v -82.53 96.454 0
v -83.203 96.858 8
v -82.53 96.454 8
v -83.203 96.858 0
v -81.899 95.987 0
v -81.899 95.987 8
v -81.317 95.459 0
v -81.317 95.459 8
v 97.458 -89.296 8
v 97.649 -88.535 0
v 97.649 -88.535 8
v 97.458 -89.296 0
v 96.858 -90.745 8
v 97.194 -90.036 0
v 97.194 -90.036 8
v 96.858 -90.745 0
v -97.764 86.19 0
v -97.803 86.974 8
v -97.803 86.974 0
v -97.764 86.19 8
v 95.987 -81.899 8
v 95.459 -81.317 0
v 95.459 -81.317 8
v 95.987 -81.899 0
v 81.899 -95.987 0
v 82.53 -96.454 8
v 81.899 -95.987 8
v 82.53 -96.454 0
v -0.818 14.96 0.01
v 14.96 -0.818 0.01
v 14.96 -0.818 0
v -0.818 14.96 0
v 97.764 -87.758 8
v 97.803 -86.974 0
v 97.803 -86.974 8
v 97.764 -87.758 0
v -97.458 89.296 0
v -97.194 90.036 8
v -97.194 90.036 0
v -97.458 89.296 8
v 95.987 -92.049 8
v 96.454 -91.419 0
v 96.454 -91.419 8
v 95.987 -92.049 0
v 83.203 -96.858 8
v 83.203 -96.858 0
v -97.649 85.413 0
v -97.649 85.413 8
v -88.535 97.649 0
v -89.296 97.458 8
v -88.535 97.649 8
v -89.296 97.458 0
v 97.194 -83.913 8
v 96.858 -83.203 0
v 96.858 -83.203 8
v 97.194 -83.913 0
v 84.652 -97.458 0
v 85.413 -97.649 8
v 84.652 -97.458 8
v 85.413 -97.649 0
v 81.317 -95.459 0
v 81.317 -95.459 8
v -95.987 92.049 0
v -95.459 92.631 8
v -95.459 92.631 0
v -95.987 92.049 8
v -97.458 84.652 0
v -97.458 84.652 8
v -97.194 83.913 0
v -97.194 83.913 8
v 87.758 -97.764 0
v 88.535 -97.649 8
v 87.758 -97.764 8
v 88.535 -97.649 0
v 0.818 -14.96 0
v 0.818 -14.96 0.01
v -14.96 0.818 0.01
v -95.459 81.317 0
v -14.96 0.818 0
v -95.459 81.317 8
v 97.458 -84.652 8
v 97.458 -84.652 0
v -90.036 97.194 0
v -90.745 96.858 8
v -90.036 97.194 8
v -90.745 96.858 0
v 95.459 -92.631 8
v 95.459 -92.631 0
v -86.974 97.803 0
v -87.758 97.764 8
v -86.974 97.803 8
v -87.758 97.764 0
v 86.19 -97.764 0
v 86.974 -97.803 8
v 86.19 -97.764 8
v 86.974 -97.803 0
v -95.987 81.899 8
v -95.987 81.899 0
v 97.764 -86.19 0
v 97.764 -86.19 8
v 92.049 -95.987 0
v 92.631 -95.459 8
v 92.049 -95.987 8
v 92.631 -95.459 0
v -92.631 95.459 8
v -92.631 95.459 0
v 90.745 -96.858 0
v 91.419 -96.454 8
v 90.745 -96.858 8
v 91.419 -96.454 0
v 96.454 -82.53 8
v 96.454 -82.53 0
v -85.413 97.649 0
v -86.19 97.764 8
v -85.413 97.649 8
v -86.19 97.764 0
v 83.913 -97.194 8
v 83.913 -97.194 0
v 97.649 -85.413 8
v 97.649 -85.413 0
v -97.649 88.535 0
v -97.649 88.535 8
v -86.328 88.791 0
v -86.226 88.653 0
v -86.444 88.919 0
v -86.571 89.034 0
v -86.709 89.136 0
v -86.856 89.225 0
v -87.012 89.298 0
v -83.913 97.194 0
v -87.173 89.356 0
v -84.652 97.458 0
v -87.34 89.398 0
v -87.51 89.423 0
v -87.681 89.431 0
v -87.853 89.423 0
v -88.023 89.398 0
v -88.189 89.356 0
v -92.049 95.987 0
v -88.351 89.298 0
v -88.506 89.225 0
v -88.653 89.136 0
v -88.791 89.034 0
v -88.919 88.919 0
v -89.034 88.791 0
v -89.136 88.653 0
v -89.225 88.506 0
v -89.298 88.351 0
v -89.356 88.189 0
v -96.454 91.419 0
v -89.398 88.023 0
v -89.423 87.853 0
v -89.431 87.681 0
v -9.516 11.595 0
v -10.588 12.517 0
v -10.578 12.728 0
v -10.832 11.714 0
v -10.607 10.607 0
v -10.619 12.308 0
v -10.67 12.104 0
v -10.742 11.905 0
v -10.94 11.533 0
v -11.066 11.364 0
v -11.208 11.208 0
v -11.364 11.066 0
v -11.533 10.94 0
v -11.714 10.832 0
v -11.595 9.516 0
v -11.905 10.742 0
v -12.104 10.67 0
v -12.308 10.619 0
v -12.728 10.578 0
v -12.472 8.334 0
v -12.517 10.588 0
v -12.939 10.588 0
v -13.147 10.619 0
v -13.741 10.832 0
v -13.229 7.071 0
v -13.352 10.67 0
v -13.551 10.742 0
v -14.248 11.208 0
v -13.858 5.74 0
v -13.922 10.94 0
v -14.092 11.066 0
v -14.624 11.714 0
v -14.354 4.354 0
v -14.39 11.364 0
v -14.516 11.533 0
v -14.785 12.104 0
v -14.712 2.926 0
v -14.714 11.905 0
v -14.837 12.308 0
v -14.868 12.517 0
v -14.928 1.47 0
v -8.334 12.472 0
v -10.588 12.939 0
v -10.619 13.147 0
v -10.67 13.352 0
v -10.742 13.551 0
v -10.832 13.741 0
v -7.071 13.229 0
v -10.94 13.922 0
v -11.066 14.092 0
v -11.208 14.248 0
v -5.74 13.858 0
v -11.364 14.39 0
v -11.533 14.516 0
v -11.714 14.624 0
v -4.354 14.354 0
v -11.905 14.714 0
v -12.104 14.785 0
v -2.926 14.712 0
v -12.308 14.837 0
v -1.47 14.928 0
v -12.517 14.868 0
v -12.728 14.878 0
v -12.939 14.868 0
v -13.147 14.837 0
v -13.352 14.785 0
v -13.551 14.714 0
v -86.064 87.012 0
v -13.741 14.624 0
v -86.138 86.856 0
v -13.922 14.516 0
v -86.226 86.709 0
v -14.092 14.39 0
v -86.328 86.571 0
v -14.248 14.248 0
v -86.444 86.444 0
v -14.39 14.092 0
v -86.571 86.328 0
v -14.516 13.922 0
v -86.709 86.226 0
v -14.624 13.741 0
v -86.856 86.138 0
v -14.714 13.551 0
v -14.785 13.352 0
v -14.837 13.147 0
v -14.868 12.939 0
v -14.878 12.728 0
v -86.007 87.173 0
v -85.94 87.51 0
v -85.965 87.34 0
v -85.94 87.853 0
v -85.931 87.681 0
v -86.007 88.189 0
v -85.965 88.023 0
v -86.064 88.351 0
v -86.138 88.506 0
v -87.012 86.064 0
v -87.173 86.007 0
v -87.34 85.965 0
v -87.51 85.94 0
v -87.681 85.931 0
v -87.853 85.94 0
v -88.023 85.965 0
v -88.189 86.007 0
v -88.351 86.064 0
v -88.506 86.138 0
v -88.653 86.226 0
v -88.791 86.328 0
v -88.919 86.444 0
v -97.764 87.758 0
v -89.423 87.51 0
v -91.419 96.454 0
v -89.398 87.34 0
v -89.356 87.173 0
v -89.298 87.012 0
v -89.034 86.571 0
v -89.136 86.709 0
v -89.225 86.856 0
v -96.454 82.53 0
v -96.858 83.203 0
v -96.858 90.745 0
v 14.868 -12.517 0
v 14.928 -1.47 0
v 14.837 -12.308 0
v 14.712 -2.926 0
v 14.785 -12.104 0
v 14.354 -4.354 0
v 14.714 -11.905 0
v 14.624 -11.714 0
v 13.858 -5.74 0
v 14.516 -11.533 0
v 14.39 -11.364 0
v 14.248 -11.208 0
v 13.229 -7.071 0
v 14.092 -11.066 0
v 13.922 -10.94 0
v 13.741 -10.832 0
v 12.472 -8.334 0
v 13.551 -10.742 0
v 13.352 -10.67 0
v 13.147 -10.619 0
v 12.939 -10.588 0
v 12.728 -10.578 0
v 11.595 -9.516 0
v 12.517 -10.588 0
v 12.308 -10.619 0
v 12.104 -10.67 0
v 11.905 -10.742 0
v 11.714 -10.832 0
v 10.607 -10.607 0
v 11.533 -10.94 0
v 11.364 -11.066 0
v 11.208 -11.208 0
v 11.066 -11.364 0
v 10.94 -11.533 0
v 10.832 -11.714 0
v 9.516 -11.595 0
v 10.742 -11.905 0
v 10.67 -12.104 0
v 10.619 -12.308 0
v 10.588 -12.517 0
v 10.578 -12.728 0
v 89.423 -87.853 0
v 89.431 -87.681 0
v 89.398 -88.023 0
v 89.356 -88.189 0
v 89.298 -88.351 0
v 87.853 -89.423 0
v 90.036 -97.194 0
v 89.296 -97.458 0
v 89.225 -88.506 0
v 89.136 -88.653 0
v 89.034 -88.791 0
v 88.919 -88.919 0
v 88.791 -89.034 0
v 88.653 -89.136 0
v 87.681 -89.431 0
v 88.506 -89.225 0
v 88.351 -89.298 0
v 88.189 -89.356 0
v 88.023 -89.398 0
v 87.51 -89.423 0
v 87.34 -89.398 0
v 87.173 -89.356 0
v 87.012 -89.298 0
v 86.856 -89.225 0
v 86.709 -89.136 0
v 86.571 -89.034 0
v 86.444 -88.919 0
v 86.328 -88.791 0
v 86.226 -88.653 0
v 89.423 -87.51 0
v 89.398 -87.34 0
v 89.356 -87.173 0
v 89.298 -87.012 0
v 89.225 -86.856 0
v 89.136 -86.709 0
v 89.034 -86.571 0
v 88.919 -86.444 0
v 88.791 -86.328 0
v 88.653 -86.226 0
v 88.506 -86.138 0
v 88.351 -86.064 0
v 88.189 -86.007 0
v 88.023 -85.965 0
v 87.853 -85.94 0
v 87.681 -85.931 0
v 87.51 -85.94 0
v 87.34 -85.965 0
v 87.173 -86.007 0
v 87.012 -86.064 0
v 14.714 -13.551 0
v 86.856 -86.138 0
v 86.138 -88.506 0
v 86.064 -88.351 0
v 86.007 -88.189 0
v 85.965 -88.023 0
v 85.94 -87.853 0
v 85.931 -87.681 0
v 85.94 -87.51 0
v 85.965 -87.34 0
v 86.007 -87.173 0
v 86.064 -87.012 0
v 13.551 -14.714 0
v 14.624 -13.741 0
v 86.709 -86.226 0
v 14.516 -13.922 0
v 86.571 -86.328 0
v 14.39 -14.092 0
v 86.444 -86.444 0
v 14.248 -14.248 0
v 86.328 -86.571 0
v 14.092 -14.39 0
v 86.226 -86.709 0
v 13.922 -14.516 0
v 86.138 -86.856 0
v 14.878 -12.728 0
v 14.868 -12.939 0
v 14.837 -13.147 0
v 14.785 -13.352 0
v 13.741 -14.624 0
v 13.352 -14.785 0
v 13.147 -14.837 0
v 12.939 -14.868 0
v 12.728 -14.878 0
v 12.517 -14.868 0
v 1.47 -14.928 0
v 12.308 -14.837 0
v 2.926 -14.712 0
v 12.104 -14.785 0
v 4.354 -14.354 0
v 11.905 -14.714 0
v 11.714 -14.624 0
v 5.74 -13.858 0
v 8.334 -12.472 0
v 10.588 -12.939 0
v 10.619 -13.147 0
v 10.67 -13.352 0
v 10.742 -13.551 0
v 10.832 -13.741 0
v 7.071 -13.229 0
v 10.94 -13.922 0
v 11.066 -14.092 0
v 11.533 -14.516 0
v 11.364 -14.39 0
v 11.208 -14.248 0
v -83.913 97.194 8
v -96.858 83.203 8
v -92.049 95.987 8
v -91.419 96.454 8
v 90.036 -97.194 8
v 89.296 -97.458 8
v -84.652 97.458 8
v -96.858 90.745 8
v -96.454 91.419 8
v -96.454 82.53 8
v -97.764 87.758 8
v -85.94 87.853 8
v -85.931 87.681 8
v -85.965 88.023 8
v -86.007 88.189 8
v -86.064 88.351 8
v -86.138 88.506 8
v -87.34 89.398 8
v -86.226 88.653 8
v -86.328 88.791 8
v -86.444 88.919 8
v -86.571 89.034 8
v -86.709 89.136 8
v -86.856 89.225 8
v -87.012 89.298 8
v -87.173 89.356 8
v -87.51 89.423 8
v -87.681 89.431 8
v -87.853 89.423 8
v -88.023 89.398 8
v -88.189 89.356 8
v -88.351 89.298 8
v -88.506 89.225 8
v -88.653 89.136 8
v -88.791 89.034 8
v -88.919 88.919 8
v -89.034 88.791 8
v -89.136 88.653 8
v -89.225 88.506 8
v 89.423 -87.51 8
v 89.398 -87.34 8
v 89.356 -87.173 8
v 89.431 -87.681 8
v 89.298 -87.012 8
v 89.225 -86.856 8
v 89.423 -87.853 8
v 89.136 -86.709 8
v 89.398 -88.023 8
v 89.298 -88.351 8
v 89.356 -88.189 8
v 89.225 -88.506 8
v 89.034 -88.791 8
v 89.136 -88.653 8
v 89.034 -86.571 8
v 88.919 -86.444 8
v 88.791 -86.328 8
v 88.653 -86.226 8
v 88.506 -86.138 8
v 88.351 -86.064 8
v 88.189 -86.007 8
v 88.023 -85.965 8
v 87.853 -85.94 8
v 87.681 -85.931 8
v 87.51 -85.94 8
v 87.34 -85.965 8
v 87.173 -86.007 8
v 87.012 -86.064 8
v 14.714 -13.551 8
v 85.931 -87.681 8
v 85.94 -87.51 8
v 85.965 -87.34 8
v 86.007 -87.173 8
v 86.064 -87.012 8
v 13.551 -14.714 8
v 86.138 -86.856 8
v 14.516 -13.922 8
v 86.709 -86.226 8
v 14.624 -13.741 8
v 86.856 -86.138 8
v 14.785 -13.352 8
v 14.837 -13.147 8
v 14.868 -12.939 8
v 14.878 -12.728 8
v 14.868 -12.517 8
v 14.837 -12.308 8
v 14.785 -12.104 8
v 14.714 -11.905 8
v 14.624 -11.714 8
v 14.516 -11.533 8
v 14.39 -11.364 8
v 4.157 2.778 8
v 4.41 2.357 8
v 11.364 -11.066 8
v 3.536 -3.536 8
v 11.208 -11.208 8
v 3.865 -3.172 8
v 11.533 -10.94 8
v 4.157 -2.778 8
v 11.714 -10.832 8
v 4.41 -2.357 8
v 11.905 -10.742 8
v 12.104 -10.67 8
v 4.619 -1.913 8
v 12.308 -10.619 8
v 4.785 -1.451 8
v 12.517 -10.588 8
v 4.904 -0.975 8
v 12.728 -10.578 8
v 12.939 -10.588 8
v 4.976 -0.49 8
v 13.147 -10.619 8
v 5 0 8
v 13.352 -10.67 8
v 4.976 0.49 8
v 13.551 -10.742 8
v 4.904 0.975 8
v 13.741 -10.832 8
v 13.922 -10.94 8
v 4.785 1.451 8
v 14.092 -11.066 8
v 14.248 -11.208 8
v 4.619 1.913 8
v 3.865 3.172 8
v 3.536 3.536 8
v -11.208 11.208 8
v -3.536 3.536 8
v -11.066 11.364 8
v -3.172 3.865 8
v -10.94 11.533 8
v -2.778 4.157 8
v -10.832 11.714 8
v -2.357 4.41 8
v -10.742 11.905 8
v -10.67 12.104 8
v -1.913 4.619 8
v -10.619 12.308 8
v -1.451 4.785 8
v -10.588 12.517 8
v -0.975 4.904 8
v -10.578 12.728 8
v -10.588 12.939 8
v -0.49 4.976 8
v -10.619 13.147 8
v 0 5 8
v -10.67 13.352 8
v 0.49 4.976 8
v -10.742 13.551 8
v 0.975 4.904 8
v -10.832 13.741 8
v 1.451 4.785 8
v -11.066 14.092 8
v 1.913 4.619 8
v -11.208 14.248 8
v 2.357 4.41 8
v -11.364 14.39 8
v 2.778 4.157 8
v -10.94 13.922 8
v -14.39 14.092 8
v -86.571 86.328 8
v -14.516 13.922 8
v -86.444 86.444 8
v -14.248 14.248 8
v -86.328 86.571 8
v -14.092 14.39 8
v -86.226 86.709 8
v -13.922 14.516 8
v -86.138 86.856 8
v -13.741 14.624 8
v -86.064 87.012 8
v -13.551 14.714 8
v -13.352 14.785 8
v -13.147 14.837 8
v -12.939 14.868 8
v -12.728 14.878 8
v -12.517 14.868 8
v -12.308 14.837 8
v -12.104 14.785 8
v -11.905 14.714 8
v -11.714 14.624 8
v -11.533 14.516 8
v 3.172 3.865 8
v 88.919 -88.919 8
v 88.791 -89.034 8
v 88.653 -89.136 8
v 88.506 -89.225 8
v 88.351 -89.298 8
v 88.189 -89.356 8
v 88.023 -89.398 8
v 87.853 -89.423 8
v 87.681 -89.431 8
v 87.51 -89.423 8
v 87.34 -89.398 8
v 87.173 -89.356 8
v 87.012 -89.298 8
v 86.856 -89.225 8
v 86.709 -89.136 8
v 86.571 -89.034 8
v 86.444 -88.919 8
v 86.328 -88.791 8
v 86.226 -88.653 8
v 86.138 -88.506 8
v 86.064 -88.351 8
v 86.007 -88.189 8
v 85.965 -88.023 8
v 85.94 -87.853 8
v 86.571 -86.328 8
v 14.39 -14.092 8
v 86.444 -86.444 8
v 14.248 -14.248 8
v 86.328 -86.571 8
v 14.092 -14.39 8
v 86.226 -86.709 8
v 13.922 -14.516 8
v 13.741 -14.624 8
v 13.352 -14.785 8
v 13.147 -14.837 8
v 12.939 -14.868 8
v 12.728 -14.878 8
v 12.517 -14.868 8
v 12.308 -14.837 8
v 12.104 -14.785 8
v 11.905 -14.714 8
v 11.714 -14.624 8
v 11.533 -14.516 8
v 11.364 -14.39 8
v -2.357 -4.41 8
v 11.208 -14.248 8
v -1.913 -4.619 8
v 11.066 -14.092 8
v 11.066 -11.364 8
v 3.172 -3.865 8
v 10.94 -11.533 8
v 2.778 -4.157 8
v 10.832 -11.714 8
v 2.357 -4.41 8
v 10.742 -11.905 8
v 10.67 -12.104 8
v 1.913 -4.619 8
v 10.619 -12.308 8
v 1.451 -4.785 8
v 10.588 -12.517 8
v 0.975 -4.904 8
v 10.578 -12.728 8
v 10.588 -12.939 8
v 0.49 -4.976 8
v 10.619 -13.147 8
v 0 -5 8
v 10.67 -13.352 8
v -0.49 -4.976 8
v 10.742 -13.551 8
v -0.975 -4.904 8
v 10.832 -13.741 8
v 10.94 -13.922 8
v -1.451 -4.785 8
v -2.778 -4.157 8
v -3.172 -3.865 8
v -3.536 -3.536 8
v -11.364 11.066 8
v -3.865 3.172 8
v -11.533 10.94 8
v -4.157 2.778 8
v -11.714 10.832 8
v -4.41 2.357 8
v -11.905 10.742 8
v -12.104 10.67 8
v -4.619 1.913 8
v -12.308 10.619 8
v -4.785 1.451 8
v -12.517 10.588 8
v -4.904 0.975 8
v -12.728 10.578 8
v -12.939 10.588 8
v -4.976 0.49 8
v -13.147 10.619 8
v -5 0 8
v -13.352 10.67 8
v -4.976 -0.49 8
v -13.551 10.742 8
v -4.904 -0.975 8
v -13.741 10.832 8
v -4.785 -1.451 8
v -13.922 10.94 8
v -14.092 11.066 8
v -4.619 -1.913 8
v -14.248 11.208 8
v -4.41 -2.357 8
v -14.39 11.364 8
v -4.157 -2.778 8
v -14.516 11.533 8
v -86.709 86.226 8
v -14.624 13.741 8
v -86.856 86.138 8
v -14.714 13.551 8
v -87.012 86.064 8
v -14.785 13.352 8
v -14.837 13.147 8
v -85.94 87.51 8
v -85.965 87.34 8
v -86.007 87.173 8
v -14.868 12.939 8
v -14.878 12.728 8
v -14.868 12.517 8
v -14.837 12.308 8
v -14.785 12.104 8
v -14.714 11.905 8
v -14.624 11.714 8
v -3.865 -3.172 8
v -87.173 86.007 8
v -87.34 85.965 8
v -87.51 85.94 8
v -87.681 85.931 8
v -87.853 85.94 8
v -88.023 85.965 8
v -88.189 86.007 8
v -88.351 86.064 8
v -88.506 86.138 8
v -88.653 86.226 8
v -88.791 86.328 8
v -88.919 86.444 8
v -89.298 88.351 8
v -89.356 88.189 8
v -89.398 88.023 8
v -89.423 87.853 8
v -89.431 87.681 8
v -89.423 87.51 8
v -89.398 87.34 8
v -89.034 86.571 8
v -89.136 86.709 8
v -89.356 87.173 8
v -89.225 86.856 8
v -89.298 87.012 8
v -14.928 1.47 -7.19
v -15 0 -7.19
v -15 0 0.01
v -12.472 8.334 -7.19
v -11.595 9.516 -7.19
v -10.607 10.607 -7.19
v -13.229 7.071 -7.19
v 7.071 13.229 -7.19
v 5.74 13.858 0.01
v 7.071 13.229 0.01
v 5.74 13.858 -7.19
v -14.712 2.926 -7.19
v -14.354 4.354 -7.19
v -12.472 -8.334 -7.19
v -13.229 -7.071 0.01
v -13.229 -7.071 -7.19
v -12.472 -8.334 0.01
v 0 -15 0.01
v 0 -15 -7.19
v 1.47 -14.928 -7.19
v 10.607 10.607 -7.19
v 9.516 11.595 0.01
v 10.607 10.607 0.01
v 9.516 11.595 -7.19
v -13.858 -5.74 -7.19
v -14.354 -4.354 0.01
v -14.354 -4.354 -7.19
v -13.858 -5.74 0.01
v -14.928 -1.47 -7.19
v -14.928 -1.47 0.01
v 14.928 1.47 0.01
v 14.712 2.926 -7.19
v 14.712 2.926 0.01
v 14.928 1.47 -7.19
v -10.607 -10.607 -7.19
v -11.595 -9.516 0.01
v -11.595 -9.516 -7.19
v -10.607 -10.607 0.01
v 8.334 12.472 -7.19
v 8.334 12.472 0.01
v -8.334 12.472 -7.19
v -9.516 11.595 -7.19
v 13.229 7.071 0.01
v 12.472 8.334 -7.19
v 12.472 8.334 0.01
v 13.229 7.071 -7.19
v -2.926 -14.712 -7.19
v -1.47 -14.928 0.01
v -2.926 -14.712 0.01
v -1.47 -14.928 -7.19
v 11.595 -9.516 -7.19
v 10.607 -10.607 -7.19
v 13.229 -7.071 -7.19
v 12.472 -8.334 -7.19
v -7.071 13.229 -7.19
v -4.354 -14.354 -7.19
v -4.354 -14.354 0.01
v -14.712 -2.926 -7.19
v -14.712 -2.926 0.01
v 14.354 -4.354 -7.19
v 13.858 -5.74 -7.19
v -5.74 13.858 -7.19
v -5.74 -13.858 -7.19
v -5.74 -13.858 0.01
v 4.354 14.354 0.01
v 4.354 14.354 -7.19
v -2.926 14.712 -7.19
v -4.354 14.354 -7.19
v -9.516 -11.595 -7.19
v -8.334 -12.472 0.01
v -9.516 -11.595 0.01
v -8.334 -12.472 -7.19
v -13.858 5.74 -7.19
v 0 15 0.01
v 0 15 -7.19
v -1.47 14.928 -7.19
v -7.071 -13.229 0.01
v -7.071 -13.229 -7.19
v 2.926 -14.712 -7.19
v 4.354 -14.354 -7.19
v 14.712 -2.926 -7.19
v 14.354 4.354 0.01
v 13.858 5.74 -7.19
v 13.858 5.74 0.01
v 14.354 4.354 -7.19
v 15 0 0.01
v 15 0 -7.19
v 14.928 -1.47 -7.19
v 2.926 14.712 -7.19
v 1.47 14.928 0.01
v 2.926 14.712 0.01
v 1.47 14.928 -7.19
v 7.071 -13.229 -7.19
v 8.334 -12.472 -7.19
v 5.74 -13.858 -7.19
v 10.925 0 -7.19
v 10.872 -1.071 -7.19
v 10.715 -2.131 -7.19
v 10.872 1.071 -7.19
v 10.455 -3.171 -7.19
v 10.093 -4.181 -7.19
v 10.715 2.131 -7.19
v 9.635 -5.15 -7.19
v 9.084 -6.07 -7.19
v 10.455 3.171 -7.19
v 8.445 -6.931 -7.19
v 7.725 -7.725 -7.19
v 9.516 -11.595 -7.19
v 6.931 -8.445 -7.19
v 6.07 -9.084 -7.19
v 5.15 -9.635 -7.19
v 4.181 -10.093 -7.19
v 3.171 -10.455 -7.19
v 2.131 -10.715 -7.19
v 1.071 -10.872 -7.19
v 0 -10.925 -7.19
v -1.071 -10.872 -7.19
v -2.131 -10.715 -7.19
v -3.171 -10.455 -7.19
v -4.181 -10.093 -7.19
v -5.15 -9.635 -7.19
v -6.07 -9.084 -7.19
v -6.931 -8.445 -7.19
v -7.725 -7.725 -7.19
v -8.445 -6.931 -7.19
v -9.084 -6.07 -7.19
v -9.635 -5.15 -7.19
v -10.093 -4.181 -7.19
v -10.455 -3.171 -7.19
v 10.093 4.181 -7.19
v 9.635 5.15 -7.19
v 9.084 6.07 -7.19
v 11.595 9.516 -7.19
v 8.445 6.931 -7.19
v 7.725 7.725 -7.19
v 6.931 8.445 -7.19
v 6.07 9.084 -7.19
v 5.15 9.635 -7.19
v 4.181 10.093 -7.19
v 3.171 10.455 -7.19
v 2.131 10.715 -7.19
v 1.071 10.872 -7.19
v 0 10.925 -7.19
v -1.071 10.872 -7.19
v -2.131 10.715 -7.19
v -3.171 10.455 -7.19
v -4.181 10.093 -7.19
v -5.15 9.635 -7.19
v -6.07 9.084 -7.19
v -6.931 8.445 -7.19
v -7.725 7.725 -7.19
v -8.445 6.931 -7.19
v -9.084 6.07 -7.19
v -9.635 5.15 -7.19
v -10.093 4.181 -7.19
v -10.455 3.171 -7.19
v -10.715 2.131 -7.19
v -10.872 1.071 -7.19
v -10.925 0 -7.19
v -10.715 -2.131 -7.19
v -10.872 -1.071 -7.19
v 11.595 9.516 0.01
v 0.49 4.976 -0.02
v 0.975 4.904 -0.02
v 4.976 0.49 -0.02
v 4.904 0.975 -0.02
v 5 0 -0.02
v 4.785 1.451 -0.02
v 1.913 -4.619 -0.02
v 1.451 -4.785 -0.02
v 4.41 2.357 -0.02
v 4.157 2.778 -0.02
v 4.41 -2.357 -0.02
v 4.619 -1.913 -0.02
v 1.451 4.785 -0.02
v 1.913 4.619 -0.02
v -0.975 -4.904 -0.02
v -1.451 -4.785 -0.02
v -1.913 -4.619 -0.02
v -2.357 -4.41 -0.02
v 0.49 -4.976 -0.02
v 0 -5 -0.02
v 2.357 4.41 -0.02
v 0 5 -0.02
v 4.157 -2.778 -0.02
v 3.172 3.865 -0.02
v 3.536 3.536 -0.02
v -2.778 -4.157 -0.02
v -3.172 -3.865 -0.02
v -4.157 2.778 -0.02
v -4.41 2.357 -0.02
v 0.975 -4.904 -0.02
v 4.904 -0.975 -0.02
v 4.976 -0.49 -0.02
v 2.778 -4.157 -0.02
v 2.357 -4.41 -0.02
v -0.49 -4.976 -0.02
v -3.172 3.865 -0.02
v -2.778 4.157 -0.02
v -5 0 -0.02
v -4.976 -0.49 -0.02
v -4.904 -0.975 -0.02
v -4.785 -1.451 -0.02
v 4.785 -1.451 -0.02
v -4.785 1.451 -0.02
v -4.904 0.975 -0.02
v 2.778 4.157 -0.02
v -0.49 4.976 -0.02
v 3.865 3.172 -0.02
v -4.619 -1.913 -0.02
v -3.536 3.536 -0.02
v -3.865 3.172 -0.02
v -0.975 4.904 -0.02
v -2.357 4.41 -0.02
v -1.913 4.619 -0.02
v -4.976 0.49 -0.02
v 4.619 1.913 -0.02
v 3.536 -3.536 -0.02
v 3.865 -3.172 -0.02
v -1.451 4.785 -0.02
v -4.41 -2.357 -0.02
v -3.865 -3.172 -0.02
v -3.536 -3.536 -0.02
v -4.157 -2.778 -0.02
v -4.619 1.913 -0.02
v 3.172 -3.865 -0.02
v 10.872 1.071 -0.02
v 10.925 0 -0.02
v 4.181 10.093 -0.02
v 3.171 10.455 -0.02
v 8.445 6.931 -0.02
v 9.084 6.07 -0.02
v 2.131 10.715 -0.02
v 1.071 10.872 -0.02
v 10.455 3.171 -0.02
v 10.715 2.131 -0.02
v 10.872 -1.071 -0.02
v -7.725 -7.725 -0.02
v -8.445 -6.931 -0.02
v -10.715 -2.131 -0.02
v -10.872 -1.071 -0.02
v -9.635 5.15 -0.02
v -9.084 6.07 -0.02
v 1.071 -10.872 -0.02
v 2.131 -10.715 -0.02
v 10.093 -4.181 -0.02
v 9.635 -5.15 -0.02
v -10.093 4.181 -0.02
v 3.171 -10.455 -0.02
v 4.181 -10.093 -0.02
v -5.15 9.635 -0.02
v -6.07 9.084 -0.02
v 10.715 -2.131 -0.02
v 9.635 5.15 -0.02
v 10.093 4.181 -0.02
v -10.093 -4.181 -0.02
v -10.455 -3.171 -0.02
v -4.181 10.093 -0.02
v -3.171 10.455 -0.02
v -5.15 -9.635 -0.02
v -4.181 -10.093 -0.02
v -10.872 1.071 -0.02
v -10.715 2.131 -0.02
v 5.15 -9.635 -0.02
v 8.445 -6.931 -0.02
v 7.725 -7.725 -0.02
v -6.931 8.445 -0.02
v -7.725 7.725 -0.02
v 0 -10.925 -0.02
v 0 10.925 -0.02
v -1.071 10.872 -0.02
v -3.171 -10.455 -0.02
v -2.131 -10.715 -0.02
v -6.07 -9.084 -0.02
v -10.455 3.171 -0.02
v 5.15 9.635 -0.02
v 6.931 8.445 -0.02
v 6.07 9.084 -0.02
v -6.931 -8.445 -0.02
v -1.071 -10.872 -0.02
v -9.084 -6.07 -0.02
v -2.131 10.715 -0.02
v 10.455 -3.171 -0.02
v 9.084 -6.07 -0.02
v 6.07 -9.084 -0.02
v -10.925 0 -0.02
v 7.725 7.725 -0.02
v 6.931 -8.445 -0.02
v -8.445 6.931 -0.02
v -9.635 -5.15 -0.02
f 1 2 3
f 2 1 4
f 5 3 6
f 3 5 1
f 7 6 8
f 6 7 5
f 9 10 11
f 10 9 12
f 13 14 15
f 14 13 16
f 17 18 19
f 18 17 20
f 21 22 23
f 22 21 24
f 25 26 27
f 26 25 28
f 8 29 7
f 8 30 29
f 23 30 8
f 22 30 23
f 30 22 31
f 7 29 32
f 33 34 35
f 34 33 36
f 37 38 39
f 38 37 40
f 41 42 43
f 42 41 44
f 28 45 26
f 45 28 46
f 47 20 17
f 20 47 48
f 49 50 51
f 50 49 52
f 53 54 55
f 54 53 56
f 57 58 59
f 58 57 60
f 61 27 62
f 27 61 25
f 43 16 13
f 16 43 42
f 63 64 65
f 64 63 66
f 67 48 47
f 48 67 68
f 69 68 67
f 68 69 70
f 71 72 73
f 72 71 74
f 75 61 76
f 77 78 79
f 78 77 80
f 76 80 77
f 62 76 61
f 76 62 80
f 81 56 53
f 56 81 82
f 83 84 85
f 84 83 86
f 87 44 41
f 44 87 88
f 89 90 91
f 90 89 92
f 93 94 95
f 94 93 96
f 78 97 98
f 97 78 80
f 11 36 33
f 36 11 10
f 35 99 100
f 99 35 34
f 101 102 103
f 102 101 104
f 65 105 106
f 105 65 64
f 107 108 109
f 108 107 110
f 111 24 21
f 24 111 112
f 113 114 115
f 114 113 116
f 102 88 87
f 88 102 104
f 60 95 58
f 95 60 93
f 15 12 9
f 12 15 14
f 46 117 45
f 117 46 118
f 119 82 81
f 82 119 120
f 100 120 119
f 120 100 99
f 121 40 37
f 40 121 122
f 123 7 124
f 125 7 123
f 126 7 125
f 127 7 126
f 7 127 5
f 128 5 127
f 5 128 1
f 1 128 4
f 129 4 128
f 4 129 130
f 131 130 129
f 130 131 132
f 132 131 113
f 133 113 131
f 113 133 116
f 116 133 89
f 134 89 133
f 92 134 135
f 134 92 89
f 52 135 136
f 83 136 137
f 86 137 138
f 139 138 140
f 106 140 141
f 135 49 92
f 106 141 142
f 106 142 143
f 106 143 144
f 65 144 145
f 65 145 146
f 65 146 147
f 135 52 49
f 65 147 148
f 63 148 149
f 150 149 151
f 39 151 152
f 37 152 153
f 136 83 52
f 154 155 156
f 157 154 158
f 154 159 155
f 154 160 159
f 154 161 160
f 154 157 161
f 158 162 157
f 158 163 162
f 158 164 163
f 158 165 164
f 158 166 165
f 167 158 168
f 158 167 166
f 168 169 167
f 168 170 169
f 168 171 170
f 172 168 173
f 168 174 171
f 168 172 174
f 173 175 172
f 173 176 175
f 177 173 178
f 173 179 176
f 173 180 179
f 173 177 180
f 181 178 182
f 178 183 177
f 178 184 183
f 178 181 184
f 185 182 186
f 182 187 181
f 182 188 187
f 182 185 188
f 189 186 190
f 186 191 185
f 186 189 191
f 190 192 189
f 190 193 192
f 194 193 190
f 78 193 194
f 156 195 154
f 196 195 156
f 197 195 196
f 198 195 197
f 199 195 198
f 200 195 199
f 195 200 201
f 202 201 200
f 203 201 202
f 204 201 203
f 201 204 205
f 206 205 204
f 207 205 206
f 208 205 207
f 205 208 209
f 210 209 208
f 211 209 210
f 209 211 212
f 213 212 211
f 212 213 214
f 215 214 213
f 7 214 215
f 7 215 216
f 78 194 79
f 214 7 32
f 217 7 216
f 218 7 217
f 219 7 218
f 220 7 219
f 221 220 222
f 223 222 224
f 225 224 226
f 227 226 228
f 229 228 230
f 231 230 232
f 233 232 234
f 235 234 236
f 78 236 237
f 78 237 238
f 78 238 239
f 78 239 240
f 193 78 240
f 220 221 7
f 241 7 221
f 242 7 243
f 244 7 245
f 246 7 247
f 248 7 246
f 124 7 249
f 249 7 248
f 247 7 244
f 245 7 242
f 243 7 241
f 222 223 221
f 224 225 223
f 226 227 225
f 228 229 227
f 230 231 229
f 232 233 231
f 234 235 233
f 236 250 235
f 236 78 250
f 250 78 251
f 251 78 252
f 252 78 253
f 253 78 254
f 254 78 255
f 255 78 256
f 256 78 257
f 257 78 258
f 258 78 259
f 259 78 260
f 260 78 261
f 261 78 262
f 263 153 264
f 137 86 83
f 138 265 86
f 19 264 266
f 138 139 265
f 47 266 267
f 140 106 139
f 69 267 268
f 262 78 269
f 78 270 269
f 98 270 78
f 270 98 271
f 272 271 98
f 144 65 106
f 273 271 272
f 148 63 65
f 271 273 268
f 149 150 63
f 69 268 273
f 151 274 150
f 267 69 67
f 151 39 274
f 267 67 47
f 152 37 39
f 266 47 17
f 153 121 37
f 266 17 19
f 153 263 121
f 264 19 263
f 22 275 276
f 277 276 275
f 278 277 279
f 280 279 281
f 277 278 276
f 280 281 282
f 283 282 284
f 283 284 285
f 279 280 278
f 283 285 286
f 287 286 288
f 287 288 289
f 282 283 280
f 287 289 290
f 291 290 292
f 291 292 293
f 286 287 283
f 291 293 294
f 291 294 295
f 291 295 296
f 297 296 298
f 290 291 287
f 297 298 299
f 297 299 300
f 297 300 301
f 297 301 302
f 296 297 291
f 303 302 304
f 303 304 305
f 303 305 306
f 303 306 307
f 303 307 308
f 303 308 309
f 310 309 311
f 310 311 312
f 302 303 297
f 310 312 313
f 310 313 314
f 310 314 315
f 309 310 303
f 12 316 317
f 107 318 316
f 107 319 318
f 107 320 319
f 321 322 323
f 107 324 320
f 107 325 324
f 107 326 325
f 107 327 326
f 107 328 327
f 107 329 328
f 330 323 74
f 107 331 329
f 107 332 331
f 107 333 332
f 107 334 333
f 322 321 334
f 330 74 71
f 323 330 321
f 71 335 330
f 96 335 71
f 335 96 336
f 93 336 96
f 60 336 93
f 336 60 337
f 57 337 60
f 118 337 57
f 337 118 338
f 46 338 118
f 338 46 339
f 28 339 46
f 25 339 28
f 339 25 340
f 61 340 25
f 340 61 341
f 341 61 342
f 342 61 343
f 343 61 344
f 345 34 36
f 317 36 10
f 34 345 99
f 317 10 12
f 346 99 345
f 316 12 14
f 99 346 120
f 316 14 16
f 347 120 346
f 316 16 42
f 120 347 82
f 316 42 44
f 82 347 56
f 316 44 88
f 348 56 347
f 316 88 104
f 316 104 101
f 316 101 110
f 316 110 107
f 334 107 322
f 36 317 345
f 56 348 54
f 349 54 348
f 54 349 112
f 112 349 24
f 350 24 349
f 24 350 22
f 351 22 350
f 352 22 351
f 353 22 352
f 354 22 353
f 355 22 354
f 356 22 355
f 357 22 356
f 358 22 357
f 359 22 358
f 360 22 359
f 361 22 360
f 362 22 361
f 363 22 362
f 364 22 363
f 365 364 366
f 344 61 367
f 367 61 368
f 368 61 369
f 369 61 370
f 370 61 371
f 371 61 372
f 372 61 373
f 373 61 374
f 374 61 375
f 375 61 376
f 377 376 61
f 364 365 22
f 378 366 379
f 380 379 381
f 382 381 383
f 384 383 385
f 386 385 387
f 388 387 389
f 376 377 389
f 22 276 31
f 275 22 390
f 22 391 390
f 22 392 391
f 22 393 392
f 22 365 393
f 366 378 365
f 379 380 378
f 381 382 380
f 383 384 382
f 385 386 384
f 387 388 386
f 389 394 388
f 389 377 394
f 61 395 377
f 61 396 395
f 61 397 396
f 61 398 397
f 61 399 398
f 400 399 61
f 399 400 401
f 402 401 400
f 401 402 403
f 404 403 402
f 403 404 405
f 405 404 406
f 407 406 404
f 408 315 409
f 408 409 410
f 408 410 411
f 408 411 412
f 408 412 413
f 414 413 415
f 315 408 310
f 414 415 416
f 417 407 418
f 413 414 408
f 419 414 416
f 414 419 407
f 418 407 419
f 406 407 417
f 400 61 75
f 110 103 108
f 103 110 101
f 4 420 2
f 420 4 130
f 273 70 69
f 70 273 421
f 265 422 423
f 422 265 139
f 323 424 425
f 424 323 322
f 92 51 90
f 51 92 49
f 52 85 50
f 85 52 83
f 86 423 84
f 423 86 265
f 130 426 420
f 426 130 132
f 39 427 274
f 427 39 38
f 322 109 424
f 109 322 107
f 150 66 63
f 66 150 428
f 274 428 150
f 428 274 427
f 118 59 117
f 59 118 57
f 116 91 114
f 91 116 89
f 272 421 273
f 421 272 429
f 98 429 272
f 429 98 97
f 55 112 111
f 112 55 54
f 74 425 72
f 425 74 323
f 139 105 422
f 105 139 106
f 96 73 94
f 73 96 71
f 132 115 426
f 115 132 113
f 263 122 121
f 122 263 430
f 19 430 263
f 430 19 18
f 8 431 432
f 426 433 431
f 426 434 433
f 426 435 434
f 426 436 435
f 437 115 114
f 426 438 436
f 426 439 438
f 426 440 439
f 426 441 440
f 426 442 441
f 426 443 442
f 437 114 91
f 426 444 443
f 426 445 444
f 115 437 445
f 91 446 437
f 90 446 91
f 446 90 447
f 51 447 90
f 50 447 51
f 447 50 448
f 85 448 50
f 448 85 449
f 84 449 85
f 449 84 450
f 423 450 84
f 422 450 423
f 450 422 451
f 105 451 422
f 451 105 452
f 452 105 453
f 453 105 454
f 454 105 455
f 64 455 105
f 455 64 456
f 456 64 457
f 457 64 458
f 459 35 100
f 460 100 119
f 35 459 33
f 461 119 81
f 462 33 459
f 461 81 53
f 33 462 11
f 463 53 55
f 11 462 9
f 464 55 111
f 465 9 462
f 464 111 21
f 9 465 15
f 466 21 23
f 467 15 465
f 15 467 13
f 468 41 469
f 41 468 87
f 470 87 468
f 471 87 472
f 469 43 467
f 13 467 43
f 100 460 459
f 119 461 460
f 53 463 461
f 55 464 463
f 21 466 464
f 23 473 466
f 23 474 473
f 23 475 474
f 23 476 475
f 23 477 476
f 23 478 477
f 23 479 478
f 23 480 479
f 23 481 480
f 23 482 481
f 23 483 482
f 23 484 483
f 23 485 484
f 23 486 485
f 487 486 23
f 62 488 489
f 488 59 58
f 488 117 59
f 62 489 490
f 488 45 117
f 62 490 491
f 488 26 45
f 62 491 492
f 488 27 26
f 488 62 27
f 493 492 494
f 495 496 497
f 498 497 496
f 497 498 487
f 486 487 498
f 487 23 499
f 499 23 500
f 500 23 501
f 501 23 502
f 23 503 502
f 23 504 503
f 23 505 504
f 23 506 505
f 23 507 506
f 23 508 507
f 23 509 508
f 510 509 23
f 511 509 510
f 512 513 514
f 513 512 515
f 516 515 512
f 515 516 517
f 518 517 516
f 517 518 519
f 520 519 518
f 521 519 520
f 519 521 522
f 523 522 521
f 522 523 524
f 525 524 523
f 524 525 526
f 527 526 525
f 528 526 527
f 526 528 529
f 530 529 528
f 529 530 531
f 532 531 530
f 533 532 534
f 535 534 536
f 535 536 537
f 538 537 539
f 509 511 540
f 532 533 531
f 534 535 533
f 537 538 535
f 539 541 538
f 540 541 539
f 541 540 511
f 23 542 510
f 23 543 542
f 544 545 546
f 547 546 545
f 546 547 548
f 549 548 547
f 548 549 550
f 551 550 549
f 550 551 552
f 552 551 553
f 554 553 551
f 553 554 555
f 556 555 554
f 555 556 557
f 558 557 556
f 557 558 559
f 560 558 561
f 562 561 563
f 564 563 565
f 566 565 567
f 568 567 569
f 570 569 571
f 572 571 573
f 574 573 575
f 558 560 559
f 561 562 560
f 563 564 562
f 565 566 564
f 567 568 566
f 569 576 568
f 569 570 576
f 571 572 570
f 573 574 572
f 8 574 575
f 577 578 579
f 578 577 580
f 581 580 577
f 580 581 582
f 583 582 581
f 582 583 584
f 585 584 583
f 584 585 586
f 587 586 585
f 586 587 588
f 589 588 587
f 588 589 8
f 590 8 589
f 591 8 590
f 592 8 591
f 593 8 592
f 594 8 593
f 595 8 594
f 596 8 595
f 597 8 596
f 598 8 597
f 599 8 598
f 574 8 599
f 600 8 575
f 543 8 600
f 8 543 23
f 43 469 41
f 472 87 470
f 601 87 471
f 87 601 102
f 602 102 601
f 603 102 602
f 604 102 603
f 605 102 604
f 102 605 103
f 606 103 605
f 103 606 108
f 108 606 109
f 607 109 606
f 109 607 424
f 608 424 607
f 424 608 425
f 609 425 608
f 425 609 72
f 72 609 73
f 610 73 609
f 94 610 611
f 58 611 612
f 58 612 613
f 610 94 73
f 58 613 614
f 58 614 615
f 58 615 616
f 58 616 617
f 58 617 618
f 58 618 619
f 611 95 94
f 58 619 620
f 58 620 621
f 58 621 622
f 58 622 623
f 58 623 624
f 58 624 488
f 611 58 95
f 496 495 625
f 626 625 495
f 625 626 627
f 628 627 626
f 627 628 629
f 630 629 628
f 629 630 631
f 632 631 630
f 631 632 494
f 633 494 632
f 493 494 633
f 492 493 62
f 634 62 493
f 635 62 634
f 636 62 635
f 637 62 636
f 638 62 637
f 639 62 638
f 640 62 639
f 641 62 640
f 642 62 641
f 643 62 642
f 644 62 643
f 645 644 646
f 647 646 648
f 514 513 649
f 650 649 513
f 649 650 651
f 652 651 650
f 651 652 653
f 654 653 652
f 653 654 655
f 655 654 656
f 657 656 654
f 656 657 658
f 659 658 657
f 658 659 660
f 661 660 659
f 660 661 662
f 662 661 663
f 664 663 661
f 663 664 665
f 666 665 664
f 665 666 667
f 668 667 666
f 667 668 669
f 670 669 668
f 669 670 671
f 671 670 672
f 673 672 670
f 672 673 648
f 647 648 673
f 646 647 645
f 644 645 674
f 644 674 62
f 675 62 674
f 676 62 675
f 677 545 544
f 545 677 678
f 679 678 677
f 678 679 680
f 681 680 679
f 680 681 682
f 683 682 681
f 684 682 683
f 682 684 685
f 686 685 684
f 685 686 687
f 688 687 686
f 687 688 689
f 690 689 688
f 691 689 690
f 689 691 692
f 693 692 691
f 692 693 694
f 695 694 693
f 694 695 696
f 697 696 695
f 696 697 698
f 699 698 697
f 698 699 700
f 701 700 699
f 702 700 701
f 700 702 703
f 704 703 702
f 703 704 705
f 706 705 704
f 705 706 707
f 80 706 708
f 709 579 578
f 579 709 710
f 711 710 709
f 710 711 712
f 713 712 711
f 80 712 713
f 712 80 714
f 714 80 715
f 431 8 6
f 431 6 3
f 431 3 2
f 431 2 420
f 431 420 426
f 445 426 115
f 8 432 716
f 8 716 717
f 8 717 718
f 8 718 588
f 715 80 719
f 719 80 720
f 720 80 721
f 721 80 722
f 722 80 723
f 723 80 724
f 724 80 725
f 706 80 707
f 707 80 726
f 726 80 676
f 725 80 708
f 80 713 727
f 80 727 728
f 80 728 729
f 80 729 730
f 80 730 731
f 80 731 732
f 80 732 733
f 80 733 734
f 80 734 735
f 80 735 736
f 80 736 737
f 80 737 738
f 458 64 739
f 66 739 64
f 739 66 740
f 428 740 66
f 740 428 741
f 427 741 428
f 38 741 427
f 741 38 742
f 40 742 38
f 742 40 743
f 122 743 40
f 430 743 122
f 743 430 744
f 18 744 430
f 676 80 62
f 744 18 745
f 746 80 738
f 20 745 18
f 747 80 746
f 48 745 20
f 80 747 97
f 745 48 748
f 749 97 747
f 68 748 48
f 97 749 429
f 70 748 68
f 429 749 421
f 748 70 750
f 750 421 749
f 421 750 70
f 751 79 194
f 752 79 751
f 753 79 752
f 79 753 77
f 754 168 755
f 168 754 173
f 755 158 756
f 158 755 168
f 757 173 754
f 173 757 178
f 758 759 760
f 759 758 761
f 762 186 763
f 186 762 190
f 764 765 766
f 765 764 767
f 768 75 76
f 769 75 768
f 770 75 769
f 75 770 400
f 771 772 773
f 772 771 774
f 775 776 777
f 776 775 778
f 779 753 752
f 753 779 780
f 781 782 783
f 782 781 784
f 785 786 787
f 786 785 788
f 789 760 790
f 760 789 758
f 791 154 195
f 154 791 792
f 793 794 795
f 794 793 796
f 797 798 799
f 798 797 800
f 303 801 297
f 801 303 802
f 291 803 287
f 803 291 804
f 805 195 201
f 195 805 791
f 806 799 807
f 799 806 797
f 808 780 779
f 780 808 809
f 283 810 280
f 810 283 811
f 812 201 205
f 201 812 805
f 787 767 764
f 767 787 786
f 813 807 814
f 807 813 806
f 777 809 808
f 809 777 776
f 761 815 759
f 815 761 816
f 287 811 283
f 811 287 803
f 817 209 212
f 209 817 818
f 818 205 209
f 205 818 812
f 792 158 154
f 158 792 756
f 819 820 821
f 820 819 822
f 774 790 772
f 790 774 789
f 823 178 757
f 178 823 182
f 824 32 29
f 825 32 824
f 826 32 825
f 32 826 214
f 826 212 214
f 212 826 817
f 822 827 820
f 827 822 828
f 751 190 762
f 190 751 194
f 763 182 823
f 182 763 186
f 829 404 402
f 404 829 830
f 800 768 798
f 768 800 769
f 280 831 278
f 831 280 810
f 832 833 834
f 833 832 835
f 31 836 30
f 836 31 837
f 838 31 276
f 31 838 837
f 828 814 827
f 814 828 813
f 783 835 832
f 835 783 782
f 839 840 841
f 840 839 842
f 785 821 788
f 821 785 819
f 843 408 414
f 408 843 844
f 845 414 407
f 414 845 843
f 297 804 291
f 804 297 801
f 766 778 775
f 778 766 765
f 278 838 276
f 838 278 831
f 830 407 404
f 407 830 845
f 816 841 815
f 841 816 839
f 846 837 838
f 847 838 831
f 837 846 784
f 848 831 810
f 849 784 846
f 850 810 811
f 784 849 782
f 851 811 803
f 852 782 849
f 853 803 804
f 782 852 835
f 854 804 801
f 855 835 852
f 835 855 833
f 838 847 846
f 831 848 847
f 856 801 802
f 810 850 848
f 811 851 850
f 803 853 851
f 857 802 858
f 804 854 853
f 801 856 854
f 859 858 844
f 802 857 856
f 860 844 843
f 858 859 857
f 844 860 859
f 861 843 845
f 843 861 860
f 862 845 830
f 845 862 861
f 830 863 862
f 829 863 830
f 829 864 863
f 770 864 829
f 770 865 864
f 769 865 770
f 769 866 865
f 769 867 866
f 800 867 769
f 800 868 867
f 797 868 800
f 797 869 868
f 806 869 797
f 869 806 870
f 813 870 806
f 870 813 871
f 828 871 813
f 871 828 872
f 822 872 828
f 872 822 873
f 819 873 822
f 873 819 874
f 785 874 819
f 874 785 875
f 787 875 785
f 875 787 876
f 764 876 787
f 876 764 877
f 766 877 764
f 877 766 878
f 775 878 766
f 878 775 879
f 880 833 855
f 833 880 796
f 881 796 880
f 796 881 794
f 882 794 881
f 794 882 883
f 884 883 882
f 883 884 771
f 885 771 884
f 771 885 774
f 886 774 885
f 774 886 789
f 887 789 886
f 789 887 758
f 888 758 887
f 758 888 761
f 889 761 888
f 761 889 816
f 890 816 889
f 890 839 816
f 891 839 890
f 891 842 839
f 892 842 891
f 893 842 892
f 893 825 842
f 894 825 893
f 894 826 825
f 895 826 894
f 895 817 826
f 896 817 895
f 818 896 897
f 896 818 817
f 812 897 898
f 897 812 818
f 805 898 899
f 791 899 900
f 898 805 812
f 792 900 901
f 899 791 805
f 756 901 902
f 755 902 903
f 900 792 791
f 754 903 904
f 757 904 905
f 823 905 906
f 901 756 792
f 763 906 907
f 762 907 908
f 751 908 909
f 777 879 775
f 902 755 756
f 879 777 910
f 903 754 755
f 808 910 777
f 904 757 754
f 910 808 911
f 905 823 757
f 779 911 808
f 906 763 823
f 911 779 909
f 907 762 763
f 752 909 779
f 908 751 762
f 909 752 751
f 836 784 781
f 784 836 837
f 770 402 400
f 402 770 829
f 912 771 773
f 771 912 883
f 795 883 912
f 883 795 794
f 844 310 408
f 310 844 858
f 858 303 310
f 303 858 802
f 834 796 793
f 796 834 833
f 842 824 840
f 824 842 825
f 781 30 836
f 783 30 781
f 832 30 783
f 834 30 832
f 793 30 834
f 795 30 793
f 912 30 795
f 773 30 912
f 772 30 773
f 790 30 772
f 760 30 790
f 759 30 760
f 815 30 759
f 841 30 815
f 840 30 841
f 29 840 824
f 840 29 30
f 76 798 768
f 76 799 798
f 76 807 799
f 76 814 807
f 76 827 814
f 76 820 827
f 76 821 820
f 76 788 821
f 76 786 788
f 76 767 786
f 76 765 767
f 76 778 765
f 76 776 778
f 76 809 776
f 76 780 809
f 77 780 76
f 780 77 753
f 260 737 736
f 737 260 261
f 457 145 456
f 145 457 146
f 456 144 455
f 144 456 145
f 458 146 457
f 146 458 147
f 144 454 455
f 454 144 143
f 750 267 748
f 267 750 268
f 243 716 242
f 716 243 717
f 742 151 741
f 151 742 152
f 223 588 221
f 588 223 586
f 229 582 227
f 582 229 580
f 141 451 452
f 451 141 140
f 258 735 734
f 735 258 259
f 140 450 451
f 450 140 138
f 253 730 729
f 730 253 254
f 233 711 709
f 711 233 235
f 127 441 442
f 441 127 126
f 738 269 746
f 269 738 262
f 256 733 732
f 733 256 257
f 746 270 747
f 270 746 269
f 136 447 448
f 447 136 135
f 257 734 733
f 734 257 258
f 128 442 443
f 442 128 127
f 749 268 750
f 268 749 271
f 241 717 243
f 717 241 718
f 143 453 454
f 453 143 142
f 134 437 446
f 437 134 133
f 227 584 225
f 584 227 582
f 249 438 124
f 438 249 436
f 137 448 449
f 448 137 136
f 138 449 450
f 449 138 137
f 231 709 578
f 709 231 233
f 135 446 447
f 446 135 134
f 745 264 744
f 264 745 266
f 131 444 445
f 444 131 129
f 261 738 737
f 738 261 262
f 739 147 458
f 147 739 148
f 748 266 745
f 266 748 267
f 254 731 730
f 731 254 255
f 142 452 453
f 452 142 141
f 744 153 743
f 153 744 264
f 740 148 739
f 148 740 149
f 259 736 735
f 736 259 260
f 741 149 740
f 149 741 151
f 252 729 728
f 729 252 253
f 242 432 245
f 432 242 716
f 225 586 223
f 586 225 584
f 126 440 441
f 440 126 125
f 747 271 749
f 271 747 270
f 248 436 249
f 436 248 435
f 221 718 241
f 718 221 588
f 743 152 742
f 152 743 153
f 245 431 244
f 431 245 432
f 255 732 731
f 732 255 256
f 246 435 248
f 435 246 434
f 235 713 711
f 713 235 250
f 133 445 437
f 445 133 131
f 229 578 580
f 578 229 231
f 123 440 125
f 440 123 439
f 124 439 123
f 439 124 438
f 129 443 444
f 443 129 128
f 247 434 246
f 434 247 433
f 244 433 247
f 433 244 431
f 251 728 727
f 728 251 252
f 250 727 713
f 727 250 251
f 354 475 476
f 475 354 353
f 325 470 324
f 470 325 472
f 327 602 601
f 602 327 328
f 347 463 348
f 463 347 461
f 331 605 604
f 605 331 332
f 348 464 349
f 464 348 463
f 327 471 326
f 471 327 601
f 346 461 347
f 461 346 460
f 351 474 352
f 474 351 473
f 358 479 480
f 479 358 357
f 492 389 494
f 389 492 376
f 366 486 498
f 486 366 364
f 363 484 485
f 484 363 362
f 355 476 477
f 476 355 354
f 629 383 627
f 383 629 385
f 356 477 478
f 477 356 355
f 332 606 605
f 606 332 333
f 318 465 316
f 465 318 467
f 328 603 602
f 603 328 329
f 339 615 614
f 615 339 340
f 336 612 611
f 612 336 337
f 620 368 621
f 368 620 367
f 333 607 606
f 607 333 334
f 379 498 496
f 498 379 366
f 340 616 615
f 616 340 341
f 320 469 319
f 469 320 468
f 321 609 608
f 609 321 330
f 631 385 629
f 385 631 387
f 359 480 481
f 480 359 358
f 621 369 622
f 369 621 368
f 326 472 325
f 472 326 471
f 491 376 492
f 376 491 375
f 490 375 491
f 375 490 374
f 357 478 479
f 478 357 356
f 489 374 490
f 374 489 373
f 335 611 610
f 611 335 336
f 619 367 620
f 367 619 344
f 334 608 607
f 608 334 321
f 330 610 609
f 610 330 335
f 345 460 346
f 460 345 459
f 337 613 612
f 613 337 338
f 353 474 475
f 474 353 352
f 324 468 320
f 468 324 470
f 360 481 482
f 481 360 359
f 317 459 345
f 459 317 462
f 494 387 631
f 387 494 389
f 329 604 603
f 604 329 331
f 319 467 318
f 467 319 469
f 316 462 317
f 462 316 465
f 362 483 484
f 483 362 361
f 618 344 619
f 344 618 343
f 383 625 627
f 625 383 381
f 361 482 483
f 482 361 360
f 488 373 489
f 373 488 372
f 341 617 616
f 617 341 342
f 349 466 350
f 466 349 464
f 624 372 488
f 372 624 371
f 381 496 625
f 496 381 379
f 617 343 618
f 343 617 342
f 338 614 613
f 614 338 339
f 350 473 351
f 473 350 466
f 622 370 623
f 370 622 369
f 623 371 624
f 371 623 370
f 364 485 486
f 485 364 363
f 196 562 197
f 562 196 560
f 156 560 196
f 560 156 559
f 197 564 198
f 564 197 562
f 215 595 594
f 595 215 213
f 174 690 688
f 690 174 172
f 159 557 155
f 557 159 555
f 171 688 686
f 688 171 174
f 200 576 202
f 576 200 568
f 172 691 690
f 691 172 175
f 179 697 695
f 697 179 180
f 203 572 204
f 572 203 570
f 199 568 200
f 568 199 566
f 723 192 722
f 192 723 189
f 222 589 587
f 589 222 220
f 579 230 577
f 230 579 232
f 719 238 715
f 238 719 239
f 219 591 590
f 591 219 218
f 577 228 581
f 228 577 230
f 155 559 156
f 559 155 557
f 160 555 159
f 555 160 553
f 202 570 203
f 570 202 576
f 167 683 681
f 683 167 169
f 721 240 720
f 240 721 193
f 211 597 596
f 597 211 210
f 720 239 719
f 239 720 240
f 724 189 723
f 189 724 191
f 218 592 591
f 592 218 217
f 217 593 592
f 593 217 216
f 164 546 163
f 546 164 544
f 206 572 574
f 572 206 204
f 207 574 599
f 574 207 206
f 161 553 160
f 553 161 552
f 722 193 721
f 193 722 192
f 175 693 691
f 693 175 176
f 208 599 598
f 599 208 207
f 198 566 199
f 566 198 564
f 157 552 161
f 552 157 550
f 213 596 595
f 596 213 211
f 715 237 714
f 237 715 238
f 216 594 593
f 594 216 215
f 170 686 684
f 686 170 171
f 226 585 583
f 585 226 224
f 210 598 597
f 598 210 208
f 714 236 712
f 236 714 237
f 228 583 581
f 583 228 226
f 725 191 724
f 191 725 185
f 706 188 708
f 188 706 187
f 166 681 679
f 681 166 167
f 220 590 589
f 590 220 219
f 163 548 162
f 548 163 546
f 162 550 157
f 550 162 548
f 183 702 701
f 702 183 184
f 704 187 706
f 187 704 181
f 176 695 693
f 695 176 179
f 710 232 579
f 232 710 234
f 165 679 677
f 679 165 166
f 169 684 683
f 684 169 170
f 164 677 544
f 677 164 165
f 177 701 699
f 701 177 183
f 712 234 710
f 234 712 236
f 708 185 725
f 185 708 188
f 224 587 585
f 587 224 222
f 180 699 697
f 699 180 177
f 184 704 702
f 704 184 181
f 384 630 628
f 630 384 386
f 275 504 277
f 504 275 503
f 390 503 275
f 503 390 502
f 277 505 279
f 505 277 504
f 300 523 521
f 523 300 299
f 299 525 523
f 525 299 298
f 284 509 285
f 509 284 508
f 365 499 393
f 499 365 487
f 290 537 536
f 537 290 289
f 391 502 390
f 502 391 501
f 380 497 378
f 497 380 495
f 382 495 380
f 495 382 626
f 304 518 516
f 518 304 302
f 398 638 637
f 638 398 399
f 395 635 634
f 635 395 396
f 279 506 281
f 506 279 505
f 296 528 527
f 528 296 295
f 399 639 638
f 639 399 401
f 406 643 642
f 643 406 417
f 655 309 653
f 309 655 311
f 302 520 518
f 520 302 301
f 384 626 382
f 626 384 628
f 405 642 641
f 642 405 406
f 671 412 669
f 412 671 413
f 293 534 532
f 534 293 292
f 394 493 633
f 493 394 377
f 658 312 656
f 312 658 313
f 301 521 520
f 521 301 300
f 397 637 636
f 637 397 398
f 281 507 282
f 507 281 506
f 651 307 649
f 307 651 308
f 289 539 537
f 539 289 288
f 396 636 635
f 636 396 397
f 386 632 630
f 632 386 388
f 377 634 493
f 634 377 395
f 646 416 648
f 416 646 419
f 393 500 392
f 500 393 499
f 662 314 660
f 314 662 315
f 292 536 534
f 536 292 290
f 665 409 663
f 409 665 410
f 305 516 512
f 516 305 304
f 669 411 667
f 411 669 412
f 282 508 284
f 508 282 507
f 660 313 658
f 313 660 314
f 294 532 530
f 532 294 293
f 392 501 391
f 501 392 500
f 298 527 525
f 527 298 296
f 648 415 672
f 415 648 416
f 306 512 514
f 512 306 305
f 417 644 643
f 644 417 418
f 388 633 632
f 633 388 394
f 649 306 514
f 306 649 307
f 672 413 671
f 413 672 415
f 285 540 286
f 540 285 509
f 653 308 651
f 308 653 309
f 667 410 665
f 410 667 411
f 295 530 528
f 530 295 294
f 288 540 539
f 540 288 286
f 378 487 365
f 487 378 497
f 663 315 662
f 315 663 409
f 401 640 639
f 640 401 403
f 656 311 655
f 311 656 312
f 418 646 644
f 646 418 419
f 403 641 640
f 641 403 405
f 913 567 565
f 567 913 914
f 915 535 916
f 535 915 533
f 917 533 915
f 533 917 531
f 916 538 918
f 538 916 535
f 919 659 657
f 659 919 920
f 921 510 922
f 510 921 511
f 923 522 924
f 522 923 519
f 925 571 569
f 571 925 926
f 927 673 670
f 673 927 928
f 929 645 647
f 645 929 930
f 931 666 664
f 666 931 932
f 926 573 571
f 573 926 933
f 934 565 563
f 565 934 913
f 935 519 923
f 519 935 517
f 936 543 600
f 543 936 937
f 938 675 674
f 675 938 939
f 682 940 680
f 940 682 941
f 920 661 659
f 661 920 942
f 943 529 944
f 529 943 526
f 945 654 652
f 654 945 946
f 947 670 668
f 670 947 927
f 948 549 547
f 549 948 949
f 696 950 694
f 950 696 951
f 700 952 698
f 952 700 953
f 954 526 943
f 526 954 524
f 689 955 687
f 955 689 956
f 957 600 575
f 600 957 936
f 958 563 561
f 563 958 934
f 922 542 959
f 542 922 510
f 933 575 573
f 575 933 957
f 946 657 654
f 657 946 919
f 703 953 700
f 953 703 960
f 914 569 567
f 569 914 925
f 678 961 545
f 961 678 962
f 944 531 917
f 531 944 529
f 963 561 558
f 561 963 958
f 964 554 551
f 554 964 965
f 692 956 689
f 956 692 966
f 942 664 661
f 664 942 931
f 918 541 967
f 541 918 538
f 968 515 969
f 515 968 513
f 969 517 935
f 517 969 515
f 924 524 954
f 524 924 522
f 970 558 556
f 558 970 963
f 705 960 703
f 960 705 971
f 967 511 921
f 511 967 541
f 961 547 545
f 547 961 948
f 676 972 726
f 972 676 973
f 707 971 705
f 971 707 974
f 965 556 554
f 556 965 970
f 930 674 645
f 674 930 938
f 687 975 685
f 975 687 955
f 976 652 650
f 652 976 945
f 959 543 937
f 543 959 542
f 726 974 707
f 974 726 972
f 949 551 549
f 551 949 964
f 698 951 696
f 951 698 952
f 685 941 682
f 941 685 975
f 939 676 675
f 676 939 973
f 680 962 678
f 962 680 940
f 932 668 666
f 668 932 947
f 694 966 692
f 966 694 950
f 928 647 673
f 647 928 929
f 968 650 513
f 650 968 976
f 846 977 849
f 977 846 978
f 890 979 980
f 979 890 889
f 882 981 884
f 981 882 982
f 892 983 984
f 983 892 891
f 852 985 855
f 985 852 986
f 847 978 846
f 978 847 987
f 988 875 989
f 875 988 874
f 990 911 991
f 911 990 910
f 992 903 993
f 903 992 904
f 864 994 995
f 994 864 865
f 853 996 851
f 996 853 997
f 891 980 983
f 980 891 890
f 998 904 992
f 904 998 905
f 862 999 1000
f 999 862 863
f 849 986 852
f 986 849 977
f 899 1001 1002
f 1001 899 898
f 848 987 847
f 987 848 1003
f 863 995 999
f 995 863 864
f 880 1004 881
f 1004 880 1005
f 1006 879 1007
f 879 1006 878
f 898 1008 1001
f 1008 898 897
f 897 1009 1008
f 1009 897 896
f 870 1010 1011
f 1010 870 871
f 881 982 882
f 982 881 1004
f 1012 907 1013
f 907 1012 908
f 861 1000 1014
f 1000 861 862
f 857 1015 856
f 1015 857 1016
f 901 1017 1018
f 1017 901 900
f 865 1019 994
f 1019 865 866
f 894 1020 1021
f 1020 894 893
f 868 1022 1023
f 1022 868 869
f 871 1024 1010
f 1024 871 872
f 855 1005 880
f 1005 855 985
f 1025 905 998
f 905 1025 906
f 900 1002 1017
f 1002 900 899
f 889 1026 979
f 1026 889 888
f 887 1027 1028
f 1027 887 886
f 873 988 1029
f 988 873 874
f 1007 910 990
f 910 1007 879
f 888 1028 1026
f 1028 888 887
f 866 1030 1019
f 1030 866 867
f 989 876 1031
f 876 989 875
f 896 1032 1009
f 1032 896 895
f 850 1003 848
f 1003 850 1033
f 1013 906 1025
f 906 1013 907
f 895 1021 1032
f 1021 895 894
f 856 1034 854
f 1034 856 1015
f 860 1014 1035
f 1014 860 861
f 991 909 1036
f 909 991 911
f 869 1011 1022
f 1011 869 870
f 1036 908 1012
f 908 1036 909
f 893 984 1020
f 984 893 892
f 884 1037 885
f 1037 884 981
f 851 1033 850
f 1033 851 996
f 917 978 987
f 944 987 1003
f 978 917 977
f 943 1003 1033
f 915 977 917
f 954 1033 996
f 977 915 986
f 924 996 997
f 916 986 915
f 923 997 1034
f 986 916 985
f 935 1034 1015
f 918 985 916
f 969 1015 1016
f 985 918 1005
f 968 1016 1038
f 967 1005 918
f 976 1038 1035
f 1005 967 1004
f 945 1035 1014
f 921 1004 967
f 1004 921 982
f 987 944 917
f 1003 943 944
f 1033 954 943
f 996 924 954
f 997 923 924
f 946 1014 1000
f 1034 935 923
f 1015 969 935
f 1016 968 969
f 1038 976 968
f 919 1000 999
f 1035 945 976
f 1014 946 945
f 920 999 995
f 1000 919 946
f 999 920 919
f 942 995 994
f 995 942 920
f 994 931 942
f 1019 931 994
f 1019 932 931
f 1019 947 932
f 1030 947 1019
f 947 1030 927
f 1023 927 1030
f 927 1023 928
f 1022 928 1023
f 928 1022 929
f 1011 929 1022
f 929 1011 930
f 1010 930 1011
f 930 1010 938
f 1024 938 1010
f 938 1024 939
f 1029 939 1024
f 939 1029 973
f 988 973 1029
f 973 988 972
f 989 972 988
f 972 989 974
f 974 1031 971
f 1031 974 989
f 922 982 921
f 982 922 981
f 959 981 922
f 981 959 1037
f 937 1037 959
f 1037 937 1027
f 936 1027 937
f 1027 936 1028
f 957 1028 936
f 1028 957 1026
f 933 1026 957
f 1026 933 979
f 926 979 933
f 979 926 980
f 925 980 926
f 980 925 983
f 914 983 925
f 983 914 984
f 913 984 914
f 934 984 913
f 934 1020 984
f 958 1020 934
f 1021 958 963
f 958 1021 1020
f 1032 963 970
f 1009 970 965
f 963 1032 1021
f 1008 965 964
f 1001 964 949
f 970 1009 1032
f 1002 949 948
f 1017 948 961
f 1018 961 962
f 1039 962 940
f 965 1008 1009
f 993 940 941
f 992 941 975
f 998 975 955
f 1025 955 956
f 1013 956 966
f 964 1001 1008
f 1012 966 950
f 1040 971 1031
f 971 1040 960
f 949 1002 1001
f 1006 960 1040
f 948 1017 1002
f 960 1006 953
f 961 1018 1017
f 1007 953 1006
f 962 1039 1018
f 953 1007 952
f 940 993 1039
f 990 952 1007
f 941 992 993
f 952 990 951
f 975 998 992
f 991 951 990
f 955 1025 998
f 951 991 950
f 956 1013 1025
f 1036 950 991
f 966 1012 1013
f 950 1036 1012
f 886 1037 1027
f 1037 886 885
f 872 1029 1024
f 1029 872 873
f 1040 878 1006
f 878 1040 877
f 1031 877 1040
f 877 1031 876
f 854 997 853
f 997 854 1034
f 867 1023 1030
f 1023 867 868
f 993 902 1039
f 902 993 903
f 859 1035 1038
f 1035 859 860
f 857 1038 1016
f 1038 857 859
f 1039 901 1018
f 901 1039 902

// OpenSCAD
// Gen-DA — rear BEARING BRIDGE (bar endbell, 2026-10-10): a 608 boss on a 20 mm wide bar that spans the
// two frame rods at 135 deg and 135+180 deg (R = flange_bolt_r). The front bridge uses the rods at 45/225 deg, the rear
// bridge the rods at 135/315 deg, so the two bridges cross at 90 deg and the stator is held at 4 points.
// A bar instead of a full disc is what lets this big-ring kit fit ONE 410 mm plate. Print flat face DOWN (boss up, no supports).
// Brace holes (temporary M4 jack rods, R = brace_r) sit on the bar axis.
include <parameters.scad>;
$fn = 64;
bar_w = 20;
bar_len = 2 * (flange_bolt_r + 9);
module bar_2d() { offset(r=8) offset(delta=-8) square([bar_len, bar_w], center=true); }
difference() {
    rotate([0, 0, 135]) union() {
        linear_extrude(endbell_thick) bar_2d();
        translate([0, 0, -bearing_h + 0.01]) cylinder(d=30, h=bearing_h);
    }
    translate([0, 0, -bearing_h - 0.1]) cylinder(d=endbell_shaft_clear, h=50);
    translate([0, 0, -bearing_h - 0.02]) cylinder(d=bearing_d, h=bearing_h);
    for (s = [0, 180]) rotate([0, 0, 135 + s]) translate([flange_bolt_r, 0, -20]) cylinder(d=m3_clear, h=60);
    for (a = brace_angles) translate([brace_r*cos(a), brace_r*sin(a), -20]) cylinder(d=brace_d, h=50);
}
